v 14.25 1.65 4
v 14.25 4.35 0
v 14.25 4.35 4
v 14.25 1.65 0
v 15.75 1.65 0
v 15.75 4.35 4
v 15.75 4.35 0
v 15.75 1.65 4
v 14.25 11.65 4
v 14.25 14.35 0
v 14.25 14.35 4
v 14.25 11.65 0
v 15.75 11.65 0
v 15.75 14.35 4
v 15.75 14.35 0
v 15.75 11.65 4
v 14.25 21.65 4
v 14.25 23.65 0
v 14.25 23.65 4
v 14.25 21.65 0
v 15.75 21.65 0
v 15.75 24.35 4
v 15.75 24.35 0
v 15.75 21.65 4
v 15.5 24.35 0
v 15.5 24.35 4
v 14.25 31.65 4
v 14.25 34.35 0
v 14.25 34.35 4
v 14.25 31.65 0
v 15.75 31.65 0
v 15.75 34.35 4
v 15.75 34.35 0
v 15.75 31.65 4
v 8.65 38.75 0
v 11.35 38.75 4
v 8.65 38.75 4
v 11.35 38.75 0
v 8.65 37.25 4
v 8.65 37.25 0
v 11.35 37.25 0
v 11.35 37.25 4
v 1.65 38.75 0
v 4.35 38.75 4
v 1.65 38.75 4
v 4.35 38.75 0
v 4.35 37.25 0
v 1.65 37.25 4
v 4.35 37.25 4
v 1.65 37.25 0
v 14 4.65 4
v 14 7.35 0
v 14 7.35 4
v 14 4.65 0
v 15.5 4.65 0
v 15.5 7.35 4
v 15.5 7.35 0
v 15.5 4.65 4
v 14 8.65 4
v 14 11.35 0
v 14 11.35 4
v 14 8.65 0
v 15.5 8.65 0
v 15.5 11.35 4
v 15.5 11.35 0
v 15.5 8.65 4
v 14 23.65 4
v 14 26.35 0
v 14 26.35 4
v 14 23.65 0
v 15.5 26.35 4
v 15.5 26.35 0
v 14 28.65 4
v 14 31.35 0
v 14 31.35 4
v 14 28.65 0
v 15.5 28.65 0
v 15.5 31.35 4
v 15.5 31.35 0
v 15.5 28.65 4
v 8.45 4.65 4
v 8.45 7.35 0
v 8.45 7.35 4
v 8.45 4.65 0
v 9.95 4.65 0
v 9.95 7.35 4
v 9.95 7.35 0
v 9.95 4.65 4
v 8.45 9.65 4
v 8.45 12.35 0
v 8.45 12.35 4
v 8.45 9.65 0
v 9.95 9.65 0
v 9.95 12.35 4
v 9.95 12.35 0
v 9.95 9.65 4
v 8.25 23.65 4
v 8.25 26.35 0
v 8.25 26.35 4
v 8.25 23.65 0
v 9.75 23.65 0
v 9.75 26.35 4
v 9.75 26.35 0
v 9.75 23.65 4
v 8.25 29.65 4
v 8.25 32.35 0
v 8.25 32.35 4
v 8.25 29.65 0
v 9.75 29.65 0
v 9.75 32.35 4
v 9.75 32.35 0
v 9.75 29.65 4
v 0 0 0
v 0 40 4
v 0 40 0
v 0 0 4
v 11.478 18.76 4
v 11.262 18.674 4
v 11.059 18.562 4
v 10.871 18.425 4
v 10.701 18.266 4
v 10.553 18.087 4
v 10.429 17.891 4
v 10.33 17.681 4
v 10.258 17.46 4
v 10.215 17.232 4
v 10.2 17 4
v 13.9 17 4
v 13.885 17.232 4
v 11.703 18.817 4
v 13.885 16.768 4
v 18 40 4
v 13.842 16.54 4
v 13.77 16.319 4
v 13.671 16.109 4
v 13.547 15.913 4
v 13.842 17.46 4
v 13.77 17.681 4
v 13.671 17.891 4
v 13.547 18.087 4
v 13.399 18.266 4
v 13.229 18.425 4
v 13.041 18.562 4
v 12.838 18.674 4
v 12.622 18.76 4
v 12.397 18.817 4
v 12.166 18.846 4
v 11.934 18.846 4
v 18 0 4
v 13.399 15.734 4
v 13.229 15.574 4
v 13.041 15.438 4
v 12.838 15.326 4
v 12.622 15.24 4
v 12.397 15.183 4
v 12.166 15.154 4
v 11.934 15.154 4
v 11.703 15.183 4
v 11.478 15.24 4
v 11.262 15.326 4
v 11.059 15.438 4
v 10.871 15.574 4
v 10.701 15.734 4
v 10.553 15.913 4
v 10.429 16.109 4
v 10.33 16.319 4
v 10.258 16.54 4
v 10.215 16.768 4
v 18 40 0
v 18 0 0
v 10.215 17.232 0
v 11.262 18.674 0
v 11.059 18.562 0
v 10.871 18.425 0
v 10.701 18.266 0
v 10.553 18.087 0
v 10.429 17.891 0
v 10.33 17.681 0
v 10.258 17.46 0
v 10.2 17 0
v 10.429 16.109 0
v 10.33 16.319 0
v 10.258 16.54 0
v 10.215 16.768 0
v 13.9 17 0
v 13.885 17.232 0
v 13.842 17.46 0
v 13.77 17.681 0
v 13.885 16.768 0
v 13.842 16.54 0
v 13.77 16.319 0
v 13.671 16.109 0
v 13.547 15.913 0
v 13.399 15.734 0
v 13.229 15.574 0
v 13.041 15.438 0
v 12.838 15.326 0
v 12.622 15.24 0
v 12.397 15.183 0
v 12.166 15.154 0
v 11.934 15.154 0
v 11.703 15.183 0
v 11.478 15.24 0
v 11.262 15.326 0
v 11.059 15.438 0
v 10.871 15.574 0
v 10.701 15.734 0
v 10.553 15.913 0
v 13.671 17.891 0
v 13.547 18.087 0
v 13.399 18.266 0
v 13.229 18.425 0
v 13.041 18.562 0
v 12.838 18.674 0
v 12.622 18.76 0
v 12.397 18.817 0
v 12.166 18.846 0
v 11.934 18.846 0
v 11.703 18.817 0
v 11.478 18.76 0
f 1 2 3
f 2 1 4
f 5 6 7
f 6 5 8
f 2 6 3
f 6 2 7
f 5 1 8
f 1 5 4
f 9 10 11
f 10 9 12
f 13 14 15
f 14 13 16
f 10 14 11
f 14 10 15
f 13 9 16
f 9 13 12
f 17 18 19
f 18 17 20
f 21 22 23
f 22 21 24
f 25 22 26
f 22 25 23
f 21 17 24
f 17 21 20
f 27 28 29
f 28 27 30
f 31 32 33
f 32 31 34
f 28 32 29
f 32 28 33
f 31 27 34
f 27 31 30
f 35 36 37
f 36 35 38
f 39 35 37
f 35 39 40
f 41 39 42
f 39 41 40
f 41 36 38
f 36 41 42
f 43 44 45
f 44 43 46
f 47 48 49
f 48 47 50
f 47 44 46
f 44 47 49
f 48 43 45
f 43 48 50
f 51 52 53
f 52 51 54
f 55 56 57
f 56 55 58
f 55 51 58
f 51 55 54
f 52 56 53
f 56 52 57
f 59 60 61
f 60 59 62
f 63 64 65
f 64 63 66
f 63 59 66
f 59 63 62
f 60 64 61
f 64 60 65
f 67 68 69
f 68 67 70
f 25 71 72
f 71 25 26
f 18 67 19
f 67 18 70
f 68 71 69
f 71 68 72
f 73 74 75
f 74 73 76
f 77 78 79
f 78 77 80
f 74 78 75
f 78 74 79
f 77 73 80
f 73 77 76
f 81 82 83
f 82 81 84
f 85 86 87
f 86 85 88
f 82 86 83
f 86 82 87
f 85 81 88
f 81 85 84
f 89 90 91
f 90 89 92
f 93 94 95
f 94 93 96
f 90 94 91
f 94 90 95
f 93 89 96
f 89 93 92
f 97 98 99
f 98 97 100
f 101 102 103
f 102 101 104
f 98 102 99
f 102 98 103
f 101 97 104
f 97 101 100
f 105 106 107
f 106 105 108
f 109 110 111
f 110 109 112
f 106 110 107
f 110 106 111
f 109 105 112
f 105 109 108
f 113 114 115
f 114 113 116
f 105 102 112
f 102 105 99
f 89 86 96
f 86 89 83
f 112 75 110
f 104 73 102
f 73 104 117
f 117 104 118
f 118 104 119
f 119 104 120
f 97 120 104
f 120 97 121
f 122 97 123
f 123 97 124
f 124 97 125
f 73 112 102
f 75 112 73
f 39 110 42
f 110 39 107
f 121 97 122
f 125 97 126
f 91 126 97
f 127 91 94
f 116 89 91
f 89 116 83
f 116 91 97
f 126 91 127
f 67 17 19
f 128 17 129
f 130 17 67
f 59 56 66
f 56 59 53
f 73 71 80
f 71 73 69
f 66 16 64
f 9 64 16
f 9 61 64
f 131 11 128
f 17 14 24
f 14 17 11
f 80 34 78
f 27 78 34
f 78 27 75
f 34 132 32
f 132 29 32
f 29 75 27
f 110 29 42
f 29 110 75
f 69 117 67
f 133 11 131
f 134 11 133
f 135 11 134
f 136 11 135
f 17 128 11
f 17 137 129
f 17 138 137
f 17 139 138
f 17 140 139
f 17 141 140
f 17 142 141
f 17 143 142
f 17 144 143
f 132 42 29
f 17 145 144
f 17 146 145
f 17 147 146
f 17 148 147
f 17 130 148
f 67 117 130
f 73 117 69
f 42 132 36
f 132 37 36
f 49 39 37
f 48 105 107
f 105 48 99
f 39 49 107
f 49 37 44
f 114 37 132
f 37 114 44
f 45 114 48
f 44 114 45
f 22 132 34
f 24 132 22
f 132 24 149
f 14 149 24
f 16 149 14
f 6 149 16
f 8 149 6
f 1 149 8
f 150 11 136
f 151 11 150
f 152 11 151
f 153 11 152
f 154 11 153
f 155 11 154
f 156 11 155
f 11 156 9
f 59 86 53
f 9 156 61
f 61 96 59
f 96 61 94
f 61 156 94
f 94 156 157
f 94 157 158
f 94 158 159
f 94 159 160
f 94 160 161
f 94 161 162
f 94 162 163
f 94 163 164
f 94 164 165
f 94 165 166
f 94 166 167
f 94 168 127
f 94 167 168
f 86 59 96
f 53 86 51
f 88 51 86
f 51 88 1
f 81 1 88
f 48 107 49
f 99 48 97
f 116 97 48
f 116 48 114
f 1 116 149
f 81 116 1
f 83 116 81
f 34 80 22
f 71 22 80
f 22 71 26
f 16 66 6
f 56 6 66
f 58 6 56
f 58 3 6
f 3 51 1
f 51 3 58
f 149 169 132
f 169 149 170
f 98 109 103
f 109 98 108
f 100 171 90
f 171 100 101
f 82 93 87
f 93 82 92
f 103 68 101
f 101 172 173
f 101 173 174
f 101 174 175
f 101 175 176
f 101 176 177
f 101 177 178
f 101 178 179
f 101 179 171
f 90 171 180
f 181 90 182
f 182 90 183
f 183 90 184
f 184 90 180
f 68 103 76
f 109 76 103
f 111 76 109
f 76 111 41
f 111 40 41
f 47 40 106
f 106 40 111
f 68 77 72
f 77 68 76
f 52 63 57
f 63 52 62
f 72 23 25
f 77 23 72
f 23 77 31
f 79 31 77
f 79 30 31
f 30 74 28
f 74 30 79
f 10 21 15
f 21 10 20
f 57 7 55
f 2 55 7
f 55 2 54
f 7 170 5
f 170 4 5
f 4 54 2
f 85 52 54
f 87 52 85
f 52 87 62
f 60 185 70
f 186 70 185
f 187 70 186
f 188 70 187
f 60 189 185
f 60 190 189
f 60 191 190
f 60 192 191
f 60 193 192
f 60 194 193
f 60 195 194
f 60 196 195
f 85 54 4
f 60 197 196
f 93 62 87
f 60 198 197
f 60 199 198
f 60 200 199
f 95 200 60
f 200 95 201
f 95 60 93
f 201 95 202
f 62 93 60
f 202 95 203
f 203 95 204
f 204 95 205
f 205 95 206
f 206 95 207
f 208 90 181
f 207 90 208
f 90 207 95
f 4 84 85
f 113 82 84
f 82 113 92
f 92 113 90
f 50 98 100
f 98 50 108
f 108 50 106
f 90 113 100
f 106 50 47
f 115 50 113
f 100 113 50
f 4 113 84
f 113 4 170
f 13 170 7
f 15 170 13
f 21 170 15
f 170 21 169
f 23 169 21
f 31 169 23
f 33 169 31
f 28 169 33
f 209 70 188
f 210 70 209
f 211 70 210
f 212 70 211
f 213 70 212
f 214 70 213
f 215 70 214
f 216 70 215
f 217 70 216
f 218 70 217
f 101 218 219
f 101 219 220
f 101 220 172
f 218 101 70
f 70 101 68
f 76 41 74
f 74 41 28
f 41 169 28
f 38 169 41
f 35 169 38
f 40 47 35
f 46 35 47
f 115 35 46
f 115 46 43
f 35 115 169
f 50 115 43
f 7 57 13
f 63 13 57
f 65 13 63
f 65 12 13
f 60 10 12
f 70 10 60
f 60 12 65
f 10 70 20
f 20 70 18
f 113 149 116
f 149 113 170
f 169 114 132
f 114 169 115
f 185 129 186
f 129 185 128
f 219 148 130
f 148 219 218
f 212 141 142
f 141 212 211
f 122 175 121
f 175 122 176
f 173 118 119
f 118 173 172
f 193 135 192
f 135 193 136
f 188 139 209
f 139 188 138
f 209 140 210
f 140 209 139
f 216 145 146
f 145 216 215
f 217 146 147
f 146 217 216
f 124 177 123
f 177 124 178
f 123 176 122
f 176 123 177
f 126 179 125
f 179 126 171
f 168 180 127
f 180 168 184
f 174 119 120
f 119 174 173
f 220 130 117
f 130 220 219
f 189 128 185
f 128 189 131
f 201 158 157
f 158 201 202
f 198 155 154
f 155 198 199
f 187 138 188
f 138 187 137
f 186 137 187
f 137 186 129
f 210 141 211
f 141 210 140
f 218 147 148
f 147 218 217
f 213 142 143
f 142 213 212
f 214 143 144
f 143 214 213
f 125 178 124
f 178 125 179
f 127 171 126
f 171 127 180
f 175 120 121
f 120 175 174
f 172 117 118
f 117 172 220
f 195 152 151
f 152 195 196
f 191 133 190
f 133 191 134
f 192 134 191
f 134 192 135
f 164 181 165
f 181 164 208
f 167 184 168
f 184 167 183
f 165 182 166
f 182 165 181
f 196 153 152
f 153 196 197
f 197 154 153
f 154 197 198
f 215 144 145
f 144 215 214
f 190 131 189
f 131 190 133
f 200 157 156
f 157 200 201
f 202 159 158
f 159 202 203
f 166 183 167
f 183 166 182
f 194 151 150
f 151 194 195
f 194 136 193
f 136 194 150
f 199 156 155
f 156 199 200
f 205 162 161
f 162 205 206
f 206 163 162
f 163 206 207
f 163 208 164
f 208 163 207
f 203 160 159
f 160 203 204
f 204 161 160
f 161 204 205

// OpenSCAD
//https://github.com/EricRohlfs/UltrasonicStriker
//numbers are in mm

// Part 1 of 2 for SG90 servo powered foosball gripper
// A coat hanger is bent into two different arms
// and attached via zip ties
$fn=50;
servoHornLength = 34; //adjust if you have different horn size

hornStrapWidth = 1.5; // adjust if zip ties don't fit
hornStrapDepth = 2.7; //adjust if zip ties groves need to be deeper

//Tweak these numbers if necessary, the largest positive number is closest to coat hanger hole
servoHornZipTieChannelPlacement= [-9, -3.5, 2.75, 6.25];

coatHangerDiameterActual =2;
coatHangerDiameter = coatHangerDiameterActual +.25;
coatHangerChannel = coatHangerDiameter;
coatHangerHole = coatHangerChannel +.65;

sg90Margin = .1; //cause the hole needs to be a tad bigger than the object
sg90StickerAdjustment = .2;//stickers were getting ripped off because it was too tight
sg90Width = 12.3 + sg90Margin + sg90StickerAdjustment;
sg90Depth = 22.8 + sg90Margin;
sg90Height = 26.5; //must be greater that base_h

sg90CavityBack = -sg90Width/2; //back edge reference point for the arm and zip ties
sg90CavityBackZip = sg90CavityBack - hornStrapWidth;

//main block
base_h = 9.15;  //height
base_w = sg90Width + 10; // width
base_d = sg90Depth + 14; //46 is original; //depth

//was 7 - hornStrap, not sure why I couldn't get exact width, so just added the last number
armMountWidth = base_w/2 - sg90Width/2 - hornStrapWidth +2.75;
armMountHeight = 20;
armMountY = base_d/2 + 6;
armMountTY = -armMountY -1.5;
armTransX = sg90CavityBack -.9;

//servo horn set screw
setScrewHoleRadius = 2;//make this bigger if yor screwdrive does not fit

//The big hole in the midddle of the piece
servoCavityCenterOffset = 7;
servoCavityX = (base_w - sg90Width - servoCavityCenterOffset);
servoCavityY = 0;

module main_body(){
   cube([base_w,base_d,base_h],center=true);
    }
    
module SG90ServoCavity(){
    //place to mount sg90 servo
    translate([servoCavityX,servoCavityY,0]) cube([sg90Width,sg90Depth,sg90Height],true);
    }
    
 //decided not to go this route, but if someone wants to implement, here is a start
 module SG90ServoMountingHole(){
     sg90screwHoleOffest = 1;
     sg90screwHoleRadius = .5;
     sg90ScrewTabDepth = 4.45;
     translate([base_w/2 - sg90Width /2,sg90Depth/2 + sg90screwHoleOffest,0]) cylinder(h= base_h + 1 ,r= sg90screwHoleRadius,center=true);
    }
    
module servo_horn_screw_access(){
    //hole for servo horn screw so you can quickly swap out broken servo on competition day
    setScrewHoleHeight = base_w * 1.5;
    rotate([0,90,0]) translate([0,0,-(base_w/1.99)]) cylinder(h= setScrewHoleHeight,r= setScrewHoleRadius);
}    
   
module ServoHornZipTieChanels(){
     for(i=servoHornZipTieChannelPlacement){
         spacing = i * 1.4 ;
         translate([-(base_w * .35), -(spacing),0]) cube([hornStrapWidth, hornStrapDepth, base_h +.1],center=true);
    }
 }
 
 module ServoHornNotch(){
        translate([-(base_w/2),0,0]) cube([1.75,servoHornLength,base_h +.1],true);
     }
     
 module ArmZipTieHole (){
      rotate([0,90,0]) cube([hornStrapWidth, hornStrapDepth, base_h +.1],center=true);
     }
     
 module ArmZipTieHoles(){
     numberOfHoles = 3;//must be the same as the array size of holes (sizeof(holes) did not work
     holeDistanceFromTop = 1.5;
     //-1 for one on the left, 0 for center, 1 for one on the right
     holes = [-1,0,1];
     for(i=holes){
        y = armMountY/numberOfHoles * i;
        z = armMountHeight/2 - coatHangerDiameter -holeDistanceFromTop;
        translate([0,y,z]) ArmZipTieHole();
    }
}    
 module ArmMount(){
    translate([armTransX,armMountTY,6]){
        difference(){
            $fn=50;
            cube([armMountWidth , armMountY, armMountHeight +1],true);
            //flanges at the top so zip ties don't have a hard angle
            //todo:make dynamic
            flangex = 2;
            flangey = 0;
            flangez = armMountHeight/2 +1.75;
           translate([-flangex,flangey,flangez])rotate([0,45,0]) cube([2, armMountY +1 , 5],true);
            translate([flangex,flangey,flangez])rotate([0,-45,0]) cube([2, armMountY +1 , 5],true);
            
            //top groove for the coat hanger
            coatHangerBottomOffset = 2.5;
            rotate([90,0,0]) translate([0,armMountHeight/2 ,- base_w  -10]) cylinder(h= base_d *2,d= coatHangerChannel);
            
        //back coat hanger groove
        translate([0,-armMountTY/2,0])cylinder(h=22, d=coatHangerChannel, center=true);
            
         //back groove inside bendy angle
         translate([0,-armMountTY/2,7])rotate([-45,0,0])cube([coatHangerChannel,10,coatHangerChannel +3], center=true);
        
       translate([0,-armMountTY/2 ,8.5])rotate([-15,0,0])cube([coatHangerChannel,20,coatHangerChannel +3], center=true);
             ArmZipTieHoles();
       }
     }
}

module CoatHangerHole(){
     translate([armTransX,armMountTY/2,2]) cylinder(h=base_h, d=coatHangerHole,center=true);
    }
       
module ServoCableHole(){
    //tod: make hole for cable
    sg90CableHoleWidth = 3.75 + .6;//last number makes hole a bit wider than the cable
    sg90CableHoleDepth = 4.75;//seems like enough room, but can be changed
    translate([ servoCavityX , -.1 + sg90Depth/2 + sg90CableHoleDepth/2 ,0])
    cube([sg90CableHoleWidth, sg90CableHoleDepth,base_h + 1],true);
    }

//a bit diferent than the horn zip tie hole
//if the servo moves around a zip tie can be used to secure the 
//servo instead of screwing the sero to the piece.
 module ServoZipTieHole (){
      //translate([-5 , 13,0])
     translate([ servoCavityX - servoCavityCenterOffset -.75 , 1.7 + sg90Depth/2  ,0])
     cube([hornStrapWidth, hornStrapDepth, base_h +.5],center=true);
     }
     
module RemoveExtraPlastic(){
    sg90MountingTab = 5;
    sg90CableHoleWidth = sg90Width + servoCavityCenterOffset/2;
    sg90CableHoleDepth = 4.75;//seems like enough room, but can be changed
    translate([servoCavityX + .9, -base_d/2, 0])
    cube([sg90CableHoleWidth, sg90CableHoleDepth,base_h + 1],true);
    
    }
module ZipTieHole (){
  rotate([0,0,0]) cube([hornStrapWidth, hornStrapDepth, base_h +.1],center=true);
 }
 
 
x=18;
y=40;
z= 4;
difference (){
    //main_body();
    //servo_horn_screw_access();
    //SG90ServoCavity();
    //ServoZipTieHole();
    //SG90ServoMountingHole();
    //mirror([0,-base_d,0]) SG90ServoMountingHole();
    //ServoHornZipTieChanels();
    //ServoHornNotch();
    //ServoCableHole();
    //CoatHangerHole();//todo: tie this in with arm module
    //RemoveExtraPlastic();
  
    
    cube([x,y,z]);
    screwHoleSize = 3.7;
    hornCenterX = x-7.8;
    //servohorn set screw
    translate([hornCenterX +screwHoleSize/2 ,17,-.1])cylinder(d=screwHoleSize, h= z+.5);
    count = 4;
    //coat hanger side
    coatLongX = x-3;
    for (i=[0:count]){
        yy = 3 + (y/count) * i;
        translate([coatLongX,yy,-.1]) ZipTieHole();
        } 
        
    //back two    
    for (i=[0:1]){
        yy = (7  * i);
        rotate([0,0,90])translate([y-2, yy-10,-.1]) ZipTieHole();
    }  


   
    translate([coatLongX -.25, 6,-.1]) {
        ZipTieHole();
        translate([0,4,0]) ZipTieHole();
    }
    translate([coatLongX -.25, 25,-.1]) {
        ZipTieHole();
        translate([0,5,0]) ZipTieHole();
    }
    
    translate([hornCenterX -1 , 6,-.1]) {
        ZipTieHole();
        translate([0,5,0]) ZipTieHole();
    }
    translate([coatLongX -6, 25,-.1]) {
        ZipTieHole();
        translate([0,6,0]) ZipTieHole();
    }
         
            
            
    //sero horn zip tie 
    //for (i=[0:1]){
    //        yy = 5 +(12  * i);
    //        translate([coatLongX-10, yy ,-.1]) ZipTieHole();
    //        translate([coatLongX-1,yy ,-.1]) ZipTieHole();
            
            //visual aids
            //todo: could add visual aids so can clearly show cross sections
          //  }  
    
            
            // for (i=[0:1]){
    //        yy = (11  * i);
    //        translate([9,(y/2+7.5 + yy) ,-.1]) ZipTieHole();
    //        translate([18.5,(y/2 +7.5 + yy) ,-.1]) ZipTieHole();
    //        } 
}
   
